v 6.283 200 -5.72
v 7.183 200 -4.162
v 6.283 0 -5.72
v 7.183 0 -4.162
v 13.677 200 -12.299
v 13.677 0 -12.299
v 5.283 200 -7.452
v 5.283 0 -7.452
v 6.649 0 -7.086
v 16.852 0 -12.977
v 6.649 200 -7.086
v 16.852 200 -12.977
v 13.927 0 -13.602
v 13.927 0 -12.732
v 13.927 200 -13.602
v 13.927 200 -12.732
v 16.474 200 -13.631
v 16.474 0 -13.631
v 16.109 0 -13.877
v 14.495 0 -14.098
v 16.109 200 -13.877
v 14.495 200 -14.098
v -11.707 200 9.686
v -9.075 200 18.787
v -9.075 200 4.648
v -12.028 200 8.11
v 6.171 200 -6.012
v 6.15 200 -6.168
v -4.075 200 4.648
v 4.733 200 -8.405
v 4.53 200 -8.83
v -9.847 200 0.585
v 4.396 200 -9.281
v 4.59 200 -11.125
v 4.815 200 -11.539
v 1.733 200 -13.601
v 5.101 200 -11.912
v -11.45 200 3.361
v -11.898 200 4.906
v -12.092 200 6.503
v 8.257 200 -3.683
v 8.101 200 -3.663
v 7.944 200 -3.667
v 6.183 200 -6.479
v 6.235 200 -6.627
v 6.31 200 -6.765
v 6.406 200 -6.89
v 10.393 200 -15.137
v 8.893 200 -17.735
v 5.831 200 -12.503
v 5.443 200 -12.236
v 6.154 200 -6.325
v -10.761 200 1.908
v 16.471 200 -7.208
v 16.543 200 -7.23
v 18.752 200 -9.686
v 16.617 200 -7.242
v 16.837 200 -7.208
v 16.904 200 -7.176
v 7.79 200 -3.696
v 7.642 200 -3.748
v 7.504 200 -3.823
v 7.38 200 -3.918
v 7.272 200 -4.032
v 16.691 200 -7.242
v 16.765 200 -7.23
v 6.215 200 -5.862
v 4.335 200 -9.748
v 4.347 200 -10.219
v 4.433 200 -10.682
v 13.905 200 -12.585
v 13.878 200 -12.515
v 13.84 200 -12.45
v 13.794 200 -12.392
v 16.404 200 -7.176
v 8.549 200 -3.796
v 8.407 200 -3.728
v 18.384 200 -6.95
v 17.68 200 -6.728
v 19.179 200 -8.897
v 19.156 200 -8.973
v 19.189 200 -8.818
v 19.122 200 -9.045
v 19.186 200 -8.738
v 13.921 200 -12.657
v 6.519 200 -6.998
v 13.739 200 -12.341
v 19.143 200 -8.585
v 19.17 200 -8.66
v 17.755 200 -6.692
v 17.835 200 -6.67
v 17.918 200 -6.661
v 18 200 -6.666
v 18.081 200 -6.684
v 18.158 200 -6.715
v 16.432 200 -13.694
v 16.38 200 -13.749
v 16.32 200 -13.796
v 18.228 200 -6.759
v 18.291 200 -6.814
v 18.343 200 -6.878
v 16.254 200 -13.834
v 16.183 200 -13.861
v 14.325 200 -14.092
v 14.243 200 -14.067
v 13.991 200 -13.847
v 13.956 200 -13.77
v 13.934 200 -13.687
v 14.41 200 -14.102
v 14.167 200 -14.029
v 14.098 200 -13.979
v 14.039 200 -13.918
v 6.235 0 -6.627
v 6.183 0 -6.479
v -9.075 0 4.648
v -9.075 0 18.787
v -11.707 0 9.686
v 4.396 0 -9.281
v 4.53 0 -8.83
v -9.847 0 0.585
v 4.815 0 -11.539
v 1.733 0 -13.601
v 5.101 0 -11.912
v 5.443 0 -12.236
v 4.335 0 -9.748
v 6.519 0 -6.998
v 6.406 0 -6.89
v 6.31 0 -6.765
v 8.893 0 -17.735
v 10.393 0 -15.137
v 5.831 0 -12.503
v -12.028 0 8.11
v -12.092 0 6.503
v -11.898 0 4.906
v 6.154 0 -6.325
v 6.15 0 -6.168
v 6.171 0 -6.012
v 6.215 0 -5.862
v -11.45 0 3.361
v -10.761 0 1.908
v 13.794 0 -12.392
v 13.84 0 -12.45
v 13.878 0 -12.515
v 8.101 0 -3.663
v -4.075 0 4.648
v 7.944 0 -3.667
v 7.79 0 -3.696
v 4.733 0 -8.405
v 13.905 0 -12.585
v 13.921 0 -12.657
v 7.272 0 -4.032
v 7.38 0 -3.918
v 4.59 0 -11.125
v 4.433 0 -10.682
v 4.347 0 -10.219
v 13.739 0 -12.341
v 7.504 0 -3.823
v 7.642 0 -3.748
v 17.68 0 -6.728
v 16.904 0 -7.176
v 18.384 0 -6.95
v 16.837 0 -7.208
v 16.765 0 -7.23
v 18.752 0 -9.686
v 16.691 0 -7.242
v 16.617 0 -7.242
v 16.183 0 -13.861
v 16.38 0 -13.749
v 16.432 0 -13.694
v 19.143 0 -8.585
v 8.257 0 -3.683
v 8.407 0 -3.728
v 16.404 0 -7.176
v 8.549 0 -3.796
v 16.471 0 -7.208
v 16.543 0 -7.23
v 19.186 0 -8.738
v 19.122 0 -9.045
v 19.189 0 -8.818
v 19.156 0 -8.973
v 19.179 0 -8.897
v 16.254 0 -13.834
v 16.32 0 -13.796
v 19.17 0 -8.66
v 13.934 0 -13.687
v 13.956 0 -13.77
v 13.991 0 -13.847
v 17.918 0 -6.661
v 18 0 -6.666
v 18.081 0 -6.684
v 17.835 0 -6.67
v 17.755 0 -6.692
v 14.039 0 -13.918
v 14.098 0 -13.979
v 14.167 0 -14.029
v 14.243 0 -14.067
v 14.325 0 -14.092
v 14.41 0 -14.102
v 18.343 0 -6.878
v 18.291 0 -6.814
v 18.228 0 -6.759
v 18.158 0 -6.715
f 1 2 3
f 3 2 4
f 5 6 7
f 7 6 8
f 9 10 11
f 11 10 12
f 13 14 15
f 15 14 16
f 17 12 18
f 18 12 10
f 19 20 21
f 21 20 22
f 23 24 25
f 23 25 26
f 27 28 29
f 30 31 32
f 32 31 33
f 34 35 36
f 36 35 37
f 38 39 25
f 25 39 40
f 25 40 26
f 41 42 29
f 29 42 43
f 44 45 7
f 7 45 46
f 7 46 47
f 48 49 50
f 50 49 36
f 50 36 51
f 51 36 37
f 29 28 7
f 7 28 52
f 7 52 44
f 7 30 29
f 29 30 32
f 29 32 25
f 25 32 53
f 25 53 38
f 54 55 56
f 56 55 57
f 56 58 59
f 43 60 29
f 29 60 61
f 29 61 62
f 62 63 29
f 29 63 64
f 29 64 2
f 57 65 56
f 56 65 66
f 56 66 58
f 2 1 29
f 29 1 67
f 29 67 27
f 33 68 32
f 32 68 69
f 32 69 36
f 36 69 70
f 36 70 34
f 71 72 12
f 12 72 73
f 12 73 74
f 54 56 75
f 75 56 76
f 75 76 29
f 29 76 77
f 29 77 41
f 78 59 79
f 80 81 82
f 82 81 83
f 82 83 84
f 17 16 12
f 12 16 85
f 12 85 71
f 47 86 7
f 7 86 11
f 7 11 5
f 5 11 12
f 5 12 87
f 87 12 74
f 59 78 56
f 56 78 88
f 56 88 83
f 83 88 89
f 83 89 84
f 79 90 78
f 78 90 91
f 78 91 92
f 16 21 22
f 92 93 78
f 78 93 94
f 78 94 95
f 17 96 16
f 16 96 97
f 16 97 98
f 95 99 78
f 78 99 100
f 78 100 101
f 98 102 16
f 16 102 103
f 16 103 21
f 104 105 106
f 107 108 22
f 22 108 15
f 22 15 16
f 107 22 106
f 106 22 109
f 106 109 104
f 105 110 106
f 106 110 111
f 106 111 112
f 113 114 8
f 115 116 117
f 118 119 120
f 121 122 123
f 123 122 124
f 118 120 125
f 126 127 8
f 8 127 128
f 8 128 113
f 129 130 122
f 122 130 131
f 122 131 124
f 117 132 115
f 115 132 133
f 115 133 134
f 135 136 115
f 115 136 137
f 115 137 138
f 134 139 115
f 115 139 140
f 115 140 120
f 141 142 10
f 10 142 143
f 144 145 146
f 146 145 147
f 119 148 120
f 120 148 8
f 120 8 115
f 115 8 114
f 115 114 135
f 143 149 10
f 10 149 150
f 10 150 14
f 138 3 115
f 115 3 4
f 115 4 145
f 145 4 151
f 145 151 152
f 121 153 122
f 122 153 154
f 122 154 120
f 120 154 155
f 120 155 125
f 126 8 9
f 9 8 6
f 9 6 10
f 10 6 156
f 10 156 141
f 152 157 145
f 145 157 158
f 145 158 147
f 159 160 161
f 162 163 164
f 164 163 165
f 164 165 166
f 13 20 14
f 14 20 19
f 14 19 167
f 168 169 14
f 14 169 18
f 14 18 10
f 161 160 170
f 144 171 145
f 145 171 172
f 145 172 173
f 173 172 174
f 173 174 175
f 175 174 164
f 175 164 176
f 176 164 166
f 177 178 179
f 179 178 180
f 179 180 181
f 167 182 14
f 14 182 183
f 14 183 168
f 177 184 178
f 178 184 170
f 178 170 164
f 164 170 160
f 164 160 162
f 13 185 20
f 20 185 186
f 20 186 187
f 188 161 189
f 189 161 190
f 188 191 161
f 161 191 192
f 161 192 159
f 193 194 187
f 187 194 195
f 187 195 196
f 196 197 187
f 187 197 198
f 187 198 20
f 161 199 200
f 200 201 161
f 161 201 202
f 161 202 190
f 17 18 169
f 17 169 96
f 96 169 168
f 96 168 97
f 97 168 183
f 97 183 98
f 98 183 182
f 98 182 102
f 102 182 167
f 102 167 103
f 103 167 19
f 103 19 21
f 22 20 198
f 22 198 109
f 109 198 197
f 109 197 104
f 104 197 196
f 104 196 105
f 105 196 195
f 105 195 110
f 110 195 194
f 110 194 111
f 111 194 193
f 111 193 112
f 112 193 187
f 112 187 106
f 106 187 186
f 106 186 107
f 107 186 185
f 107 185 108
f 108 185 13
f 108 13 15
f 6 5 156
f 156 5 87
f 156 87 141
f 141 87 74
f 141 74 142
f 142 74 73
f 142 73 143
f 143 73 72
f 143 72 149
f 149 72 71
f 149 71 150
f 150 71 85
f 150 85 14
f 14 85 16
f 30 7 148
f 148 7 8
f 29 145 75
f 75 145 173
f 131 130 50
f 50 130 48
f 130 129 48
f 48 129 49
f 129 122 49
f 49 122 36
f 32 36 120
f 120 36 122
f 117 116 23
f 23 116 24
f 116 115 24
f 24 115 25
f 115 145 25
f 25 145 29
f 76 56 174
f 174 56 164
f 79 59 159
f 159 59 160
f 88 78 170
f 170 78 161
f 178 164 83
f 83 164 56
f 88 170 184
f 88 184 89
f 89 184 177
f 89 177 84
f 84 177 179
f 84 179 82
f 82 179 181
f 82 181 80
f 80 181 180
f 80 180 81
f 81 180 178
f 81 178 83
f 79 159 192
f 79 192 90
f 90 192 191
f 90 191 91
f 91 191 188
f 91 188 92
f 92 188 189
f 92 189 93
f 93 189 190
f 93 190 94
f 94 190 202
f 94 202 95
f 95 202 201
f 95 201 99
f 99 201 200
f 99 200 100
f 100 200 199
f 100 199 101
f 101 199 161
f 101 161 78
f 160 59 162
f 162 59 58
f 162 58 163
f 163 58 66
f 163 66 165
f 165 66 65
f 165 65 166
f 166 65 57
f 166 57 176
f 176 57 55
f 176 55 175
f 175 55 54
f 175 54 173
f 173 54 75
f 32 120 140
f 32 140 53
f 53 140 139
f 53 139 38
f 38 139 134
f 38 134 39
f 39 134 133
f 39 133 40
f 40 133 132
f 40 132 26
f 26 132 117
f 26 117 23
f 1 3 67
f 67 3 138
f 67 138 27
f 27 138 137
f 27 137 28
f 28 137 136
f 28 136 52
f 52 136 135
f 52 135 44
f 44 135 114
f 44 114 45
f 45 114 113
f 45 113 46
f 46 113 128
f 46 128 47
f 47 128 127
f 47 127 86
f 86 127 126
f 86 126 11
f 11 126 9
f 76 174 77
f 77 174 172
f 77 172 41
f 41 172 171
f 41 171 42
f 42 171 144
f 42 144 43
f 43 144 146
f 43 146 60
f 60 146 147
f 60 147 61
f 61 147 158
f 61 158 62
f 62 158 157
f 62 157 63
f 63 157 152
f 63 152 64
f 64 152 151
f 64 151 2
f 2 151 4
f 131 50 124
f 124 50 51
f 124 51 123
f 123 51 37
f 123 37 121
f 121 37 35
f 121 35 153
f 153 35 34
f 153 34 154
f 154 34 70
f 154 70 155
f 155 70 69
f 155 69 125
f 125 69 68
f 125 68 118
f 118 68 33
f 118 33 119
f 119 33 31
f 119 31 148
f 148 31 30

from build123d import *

# Parameters (mm, degrees)
BOSS_EXTRUDE1_DEPTH   = 200
BOSS_EXTRUDE1_2_DEPTH = 200
FILLET1_R             = 0.5
FILLET2_R             = 0.5
BOSS_EXTRUDE3_DEPTH   = 200
FILLET3_R             = 10
FILLET4_R             = 1
FILLET5_R             = 3


with BuildPart() as part:
    # Sketch1 → Boss-Extrude1 (new body)
    with BuildSketch(Plane(origin=(0, 0, 0), x_dir=(1, 0, 0), z_dir=(0, 1, 0))):
        Polygon((13.927082127, 14.175350351), (16.351953258, 13.843299543), (16.851953258, 12.977274139), (3.059579159, 5.014243241), (2.594699496, 5.900545381), (13.927082127, 12.443299543), align=None)
    extrude(amount=BOSS_EXTRUDE1_DEPTH)

    # Fillet2
    fillet2_edges = [part.edges().sort_by_distance(p)[0] for p in [
        (13.927082127, 100, -14.175350351),
        (16.351953258, 100, -13.843299543),
        (13.927082127, 100, -12.443299543),
    ]]
    fillet(fillet2_edges, radius=FILLET2_R)



with BuildPart() as body_2:
    # Sketch1 → Boss-Extrude1 2 (new body)
    with BuildSketch(Plane(origin=(0, 0, 0), x_dir=(1, 0, 0), z_dir=(0, 1, 0))):
        Polygon((18.751953258, 9.686377605), (19.251953258, 8.820352201), (18.153877046, 6.454326797), (16.653877046, 7.320352201), (5.114206816, 0.657920487), (4.719127398, 1.584521817), align=None)
    extrude(amount=BOSS_EXTRUDE1_2_DEPTH)

    # Fillet1
    fillet1_edges = [body_2.edges().sort_by_distance(p)[0] for p in [
        (19.251953258, 100, -8.820352201),
        (18.153877046, 100, -6.454326797),
        (16.653877046, 100, -7.320352201),
    ]]
    fillet(fillet1_edges, radius=FILLET1_R)


with BuildPart() as part_1:
    add(part.part)

    add(body_2.part)  # Boss-Extrude3 merges body 2
    # Sketch2 → Boss-Extrude3 (add)
    with BuildSketch(Plane(origin=(0, 0, 0), x_dir=(1, 0, 0), z_dir=(0, 1, 0))):
        Polygon((8.182648293, 2.429486), (3.232648293, 11.003137498), (10.393111947, 15.137233116), (8.893111947, 17.735309327), (1.732648293, 13.601213709), (-13.163737181, -4.647533202), (-9.075108531, -18.787281313), (-9.075108531, -4.647533202), (-4.075108531, -4.647533202), align=None)
    extrude(amount=BOSS_EXTRUDE3_DEPTH)

    # Fillet3
    fillet3_edges = [part_1.edges().sort_by_distance(p)[0] for p in [
        (-13.163737181, 100, 4.647533202),
    ]]
    fillet(fillet3_edges, radius=FILLET3_R)

    # Fillet4
    fillet4_edges = [part_1.edges().sort_by_distance(p)[0] for p in [
        (5.782648293, 100, -6.586407938),
        (7.682648293, 100, -3.295511404),
    ]]
    fillet(fillet4_edges, radius=FILLET4_R)

    # Fillet5
    fillet5_edges = [part_1.edges().sort_by_distance(p)[0] for p in [
        (3.232648293, 100, -11.003137498),
    ]]
    fillet(fillet5_edges, radius=FILLET5_R)


solid = part_1.part
